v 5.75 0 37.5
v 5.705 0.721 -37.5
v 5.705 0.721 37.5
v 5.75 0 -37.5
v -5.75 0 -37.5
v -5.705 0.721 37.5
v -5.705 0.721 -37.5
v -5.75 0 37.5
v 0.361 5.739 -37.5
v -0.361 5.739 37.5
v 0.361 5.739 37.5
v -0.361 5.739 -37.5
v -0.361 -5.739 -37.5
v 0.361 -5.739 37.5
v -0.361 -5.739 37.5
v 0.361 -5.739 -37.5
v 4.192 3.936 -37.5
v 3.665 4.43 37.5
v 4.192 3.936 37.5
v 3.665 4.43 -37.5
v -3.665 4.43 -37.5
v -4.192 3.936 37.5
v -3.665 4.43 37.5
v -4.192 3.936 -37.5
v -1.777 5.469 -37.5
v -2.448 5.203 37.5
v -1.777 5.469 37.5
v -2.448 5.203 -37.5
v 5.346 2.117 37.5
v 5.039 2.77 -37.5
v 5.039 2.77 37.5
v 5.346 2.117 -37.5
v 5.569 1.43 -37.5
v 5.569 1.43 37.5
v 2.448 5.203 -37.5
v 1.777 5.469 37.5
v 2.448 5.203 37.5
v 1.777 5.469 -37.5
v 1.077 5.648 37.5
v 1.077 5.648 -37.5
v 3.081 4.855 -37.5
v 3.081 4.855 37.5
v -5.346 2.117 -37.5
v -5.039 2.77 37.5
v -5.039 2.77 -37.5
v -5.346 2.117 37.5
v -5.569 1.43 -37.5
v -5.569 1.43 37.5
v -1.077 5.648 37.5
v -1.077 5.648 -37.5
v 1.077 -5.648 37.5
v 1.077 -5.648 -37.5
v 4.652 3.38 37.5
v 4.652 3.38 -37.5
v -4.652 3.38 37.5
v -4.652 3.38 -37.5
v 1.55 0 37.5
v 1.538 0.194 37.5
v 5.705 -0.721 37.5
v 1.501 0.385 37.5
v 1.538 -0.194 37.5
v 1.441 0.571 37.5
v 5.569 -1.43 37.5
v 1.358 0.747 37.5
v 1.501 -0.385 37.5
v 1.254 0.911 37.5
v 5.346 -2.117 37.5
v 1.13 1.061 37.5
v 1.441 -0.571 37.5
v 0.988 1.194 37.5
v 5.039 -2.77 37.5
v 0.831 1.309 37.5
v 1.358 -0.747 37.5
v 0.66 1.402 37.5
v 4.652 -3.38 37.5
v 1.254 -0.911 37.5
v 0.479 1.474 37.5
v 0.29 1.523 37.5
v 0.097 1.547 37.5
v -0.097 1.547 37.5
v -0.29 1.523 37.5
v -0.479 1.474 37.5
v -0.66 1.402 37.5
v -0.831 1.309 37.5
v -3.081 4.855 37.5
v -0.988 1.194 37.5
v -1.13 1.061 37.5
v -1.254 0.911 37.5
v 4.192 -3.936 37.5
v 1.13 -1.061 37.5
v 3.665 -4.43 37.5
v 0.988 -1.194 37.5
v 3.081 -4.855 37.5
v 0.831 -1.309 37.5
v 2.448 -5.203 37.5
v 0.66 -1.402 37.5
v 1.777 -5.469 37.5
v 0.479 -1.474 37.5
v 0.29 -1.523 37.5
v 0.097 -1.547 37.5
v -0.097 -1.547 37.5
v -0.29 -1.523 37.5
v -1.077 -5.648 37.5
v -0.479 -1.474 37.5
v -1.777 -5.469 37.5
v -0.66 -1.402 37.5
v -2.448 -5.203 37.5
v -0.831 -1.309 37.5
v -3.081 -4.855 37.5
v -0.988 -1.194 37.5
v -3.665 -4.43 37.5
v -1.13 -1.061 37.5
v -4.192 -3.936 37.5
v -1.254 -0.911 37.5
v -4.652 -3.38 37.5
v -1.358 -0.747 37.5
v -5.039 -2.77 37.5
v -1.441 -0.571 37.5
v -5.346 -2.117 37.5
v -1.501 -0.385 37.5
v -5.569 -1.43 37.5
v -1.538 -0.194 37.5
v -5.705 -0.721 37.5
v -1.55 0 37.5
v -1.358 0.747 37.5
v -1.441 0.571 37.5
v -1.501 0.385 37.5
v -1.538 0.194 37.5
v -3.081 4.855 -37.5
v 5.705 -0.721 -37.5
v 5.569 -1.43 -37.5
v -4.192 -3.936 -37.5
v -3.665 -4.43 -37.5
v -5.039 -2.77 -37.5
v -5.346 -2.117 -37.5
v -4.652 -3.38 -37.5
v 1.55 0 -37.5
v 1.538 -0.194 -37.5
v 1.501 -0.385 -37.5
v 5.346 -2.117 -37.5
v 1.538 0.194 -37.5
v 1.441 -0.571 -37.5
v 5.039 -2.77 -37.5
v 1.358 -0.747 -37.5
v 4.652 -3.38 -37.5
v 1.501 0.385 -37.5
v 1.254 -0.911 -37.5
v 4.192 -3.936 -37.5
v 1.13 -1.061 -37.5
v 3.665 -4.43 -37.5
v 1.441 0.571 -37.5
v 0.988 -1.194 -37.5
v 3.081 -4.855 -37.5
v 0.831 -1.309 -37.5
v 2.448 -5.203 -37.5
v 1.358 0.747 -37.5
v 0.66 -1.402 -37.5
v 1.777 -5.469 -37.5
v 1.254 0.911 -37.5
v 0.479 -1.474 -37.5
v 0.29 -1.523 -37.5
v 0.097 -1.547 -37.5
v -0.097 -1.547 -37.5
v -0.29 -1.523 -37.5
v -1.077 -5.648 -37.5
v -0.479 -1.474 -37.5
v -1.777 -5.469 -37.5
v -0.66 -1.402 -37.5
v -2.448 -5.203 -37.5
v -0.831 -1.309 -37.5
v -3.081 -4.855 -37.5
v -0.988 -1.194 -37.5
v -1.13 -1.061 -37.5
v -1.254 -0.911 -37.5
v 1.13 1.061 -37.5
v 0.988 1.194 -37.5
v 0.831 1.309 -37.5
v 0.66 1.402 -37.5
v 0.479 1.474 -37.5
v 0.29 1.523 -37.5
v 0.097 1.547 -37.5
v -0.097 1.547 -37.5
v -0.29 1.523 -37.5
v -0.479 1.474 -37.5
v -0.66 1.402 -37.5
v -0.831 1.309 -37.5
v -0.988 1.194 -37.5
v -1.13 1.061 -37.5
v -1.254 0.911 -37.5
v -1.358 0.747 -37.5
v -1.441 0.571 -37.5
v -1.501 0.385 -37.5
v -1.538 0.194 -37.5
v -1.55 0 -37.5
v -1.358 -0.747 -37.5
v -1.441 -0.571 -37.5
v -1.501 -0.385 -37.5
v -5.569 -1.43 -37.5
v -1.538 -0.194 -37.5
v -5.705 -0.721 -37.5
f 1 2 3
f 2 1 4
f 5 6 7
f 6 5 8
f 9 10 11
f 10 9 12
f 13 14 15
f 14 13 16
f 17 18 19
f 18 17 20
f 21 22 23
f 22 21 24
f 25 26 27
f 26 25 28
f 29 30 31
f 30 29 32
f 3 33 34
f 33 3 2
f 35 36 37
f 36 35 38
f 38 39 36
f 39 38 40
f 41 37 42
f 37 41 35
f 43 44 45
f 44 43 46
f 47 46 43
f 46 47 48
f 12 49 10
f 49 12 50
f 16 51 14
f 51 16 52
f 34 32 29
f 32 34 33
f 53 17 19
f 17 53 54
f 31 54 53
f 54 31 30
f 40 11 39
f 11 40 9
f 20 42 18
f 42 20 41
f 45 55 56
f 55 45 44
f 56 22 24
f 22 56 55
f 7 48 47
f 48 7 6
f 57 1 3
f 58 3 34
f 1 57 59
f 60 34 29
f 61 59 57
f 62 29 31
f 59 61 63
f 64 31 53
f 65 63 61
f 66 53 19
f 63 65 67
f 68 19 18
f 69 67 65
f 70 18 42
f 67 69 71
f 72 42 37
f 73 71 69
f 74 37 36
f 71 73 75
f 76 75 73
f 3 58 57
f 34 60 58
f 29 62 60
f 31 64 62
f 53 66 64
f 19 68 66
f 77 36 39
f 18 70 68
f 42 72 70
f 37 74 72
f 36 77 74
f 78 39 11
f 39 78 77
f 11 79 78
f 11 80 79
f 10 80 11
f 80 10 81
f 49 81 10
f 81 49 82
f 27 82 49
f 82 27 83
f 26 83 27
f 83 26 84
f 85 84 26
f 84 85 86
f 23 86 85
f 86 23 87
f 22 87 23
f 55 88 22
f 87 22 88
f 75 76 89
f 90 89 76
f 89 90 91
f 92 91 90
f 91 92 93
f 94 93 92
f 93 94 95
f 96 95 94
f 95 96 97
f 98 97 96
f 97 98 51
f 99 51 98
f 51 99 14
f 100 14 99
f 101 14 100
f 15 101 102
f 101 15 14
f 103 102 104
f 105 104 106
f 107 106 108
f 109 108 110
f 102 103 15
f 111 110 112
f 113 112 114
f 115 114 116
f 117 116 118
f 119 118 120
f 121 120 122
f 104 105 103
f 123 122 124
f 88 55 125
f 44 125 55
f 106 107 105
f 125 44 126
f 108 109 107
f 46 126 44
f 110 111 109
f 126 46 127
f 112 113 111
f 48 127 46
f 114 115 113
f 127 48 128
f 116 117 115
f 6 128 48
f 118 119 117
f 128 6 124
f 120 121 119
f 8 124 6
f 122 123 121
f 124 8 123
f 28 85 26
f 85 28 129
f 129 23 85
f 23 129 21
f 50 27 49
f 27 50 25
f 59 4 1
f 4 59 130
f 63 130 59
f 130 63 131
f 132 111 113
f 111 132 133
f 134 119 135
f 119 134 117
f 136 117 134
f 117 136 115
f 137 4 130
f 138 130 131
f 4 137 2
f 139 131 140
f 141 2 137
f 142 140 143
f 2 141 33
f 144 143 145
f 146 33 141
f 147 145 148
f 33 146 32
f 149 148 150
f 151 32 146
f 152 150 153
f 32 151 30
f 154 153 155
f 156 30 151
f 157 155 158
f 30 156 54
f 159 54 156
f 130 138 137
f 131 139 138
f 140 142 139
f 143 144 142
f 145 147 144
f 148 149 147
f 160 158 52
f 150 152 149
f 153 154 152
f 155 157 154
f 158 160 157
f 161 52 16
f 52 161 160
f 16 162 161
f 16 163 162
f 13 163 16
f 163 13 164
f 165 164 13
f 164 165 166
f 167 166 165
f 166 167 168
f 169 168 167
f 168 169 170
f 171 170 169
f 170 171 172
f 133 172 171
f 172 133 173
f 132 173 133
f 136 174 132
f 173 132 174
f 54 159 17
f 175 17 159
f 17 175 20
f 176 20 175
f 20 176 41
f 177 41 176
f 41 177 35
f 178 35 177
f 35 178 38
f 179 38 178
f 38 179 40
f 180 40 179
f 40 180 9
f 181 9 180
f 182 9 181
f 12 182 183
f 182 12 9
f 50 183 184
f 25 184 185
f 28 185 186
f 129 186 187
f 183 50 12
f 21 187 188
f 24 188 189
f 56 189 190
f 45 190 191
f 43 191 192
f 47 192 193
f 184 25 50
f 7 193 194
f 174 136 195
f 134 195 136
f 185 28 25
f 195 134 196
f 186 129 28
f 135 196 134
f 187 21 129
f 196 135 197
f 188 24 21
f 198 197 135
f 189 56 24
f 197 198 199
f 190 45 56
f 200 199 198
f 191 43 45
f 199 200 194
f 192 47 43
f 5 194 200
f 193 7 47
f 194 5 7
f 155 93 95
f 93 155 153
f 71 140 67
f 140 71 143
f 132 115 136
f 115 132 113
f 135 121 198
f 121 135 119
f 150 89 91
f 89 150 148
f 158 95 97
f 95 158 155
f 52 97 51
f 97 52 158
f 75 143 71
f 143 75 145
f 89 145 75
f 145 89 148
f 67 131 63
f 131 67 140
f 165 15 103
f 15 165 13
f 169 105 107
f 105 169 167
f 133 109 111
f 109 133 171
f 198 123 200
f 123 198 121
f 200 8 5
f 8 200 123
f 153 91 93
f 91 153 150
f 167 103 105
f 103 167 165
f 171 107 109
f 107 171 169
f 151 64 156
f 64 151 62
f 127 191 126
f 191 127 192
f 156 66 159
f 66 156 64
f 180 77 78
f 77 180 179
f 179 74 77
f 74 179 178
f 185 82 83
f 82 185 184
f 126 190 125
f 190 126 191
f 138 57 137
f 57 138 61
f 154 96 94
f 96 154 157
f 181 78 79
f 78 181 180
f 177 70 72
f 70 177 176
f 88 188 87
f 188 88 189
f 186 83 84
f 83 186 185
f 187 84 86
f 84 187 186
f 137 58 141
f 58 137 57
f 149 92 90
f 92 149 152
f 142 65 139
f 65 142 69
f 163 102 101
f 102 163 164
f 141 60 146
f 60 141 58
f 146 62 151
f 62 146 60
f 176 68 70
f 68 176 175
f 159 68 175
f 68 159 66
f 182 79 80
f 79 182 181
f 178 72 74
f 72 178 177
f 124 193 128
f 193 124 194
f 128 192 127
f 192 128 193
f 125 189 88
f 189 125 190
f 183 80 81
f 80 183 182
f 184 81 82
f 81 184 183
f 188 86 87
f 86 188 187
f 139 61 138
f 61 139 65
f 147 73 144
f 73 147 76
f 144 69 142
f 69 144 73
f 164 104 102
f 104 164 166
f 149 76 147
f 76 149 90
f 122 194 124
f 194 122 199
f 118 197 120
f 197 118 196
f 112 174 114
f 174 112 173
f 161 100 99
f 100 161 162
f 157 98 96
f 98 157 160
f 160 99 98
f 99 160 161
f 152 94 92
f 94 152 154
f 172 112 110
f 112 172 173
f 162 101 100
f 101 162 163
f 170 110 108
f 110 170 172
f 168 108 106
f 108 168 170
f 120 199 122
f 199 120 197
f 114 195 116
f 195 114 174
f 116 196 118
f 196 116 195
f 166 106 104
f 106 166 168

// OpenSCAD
$fn = 50;


difference() {
	union() {
		translate(v = [0, 0, -37.5000000000]) {
			cylinder(h = 75, r = 5.7500000000);
		}
	}
	union() {
		translate(v = [0, 0, -100.0000000000]) {
			cylinder(h = 200, r = 1.5500000000);
		}
	}
}
